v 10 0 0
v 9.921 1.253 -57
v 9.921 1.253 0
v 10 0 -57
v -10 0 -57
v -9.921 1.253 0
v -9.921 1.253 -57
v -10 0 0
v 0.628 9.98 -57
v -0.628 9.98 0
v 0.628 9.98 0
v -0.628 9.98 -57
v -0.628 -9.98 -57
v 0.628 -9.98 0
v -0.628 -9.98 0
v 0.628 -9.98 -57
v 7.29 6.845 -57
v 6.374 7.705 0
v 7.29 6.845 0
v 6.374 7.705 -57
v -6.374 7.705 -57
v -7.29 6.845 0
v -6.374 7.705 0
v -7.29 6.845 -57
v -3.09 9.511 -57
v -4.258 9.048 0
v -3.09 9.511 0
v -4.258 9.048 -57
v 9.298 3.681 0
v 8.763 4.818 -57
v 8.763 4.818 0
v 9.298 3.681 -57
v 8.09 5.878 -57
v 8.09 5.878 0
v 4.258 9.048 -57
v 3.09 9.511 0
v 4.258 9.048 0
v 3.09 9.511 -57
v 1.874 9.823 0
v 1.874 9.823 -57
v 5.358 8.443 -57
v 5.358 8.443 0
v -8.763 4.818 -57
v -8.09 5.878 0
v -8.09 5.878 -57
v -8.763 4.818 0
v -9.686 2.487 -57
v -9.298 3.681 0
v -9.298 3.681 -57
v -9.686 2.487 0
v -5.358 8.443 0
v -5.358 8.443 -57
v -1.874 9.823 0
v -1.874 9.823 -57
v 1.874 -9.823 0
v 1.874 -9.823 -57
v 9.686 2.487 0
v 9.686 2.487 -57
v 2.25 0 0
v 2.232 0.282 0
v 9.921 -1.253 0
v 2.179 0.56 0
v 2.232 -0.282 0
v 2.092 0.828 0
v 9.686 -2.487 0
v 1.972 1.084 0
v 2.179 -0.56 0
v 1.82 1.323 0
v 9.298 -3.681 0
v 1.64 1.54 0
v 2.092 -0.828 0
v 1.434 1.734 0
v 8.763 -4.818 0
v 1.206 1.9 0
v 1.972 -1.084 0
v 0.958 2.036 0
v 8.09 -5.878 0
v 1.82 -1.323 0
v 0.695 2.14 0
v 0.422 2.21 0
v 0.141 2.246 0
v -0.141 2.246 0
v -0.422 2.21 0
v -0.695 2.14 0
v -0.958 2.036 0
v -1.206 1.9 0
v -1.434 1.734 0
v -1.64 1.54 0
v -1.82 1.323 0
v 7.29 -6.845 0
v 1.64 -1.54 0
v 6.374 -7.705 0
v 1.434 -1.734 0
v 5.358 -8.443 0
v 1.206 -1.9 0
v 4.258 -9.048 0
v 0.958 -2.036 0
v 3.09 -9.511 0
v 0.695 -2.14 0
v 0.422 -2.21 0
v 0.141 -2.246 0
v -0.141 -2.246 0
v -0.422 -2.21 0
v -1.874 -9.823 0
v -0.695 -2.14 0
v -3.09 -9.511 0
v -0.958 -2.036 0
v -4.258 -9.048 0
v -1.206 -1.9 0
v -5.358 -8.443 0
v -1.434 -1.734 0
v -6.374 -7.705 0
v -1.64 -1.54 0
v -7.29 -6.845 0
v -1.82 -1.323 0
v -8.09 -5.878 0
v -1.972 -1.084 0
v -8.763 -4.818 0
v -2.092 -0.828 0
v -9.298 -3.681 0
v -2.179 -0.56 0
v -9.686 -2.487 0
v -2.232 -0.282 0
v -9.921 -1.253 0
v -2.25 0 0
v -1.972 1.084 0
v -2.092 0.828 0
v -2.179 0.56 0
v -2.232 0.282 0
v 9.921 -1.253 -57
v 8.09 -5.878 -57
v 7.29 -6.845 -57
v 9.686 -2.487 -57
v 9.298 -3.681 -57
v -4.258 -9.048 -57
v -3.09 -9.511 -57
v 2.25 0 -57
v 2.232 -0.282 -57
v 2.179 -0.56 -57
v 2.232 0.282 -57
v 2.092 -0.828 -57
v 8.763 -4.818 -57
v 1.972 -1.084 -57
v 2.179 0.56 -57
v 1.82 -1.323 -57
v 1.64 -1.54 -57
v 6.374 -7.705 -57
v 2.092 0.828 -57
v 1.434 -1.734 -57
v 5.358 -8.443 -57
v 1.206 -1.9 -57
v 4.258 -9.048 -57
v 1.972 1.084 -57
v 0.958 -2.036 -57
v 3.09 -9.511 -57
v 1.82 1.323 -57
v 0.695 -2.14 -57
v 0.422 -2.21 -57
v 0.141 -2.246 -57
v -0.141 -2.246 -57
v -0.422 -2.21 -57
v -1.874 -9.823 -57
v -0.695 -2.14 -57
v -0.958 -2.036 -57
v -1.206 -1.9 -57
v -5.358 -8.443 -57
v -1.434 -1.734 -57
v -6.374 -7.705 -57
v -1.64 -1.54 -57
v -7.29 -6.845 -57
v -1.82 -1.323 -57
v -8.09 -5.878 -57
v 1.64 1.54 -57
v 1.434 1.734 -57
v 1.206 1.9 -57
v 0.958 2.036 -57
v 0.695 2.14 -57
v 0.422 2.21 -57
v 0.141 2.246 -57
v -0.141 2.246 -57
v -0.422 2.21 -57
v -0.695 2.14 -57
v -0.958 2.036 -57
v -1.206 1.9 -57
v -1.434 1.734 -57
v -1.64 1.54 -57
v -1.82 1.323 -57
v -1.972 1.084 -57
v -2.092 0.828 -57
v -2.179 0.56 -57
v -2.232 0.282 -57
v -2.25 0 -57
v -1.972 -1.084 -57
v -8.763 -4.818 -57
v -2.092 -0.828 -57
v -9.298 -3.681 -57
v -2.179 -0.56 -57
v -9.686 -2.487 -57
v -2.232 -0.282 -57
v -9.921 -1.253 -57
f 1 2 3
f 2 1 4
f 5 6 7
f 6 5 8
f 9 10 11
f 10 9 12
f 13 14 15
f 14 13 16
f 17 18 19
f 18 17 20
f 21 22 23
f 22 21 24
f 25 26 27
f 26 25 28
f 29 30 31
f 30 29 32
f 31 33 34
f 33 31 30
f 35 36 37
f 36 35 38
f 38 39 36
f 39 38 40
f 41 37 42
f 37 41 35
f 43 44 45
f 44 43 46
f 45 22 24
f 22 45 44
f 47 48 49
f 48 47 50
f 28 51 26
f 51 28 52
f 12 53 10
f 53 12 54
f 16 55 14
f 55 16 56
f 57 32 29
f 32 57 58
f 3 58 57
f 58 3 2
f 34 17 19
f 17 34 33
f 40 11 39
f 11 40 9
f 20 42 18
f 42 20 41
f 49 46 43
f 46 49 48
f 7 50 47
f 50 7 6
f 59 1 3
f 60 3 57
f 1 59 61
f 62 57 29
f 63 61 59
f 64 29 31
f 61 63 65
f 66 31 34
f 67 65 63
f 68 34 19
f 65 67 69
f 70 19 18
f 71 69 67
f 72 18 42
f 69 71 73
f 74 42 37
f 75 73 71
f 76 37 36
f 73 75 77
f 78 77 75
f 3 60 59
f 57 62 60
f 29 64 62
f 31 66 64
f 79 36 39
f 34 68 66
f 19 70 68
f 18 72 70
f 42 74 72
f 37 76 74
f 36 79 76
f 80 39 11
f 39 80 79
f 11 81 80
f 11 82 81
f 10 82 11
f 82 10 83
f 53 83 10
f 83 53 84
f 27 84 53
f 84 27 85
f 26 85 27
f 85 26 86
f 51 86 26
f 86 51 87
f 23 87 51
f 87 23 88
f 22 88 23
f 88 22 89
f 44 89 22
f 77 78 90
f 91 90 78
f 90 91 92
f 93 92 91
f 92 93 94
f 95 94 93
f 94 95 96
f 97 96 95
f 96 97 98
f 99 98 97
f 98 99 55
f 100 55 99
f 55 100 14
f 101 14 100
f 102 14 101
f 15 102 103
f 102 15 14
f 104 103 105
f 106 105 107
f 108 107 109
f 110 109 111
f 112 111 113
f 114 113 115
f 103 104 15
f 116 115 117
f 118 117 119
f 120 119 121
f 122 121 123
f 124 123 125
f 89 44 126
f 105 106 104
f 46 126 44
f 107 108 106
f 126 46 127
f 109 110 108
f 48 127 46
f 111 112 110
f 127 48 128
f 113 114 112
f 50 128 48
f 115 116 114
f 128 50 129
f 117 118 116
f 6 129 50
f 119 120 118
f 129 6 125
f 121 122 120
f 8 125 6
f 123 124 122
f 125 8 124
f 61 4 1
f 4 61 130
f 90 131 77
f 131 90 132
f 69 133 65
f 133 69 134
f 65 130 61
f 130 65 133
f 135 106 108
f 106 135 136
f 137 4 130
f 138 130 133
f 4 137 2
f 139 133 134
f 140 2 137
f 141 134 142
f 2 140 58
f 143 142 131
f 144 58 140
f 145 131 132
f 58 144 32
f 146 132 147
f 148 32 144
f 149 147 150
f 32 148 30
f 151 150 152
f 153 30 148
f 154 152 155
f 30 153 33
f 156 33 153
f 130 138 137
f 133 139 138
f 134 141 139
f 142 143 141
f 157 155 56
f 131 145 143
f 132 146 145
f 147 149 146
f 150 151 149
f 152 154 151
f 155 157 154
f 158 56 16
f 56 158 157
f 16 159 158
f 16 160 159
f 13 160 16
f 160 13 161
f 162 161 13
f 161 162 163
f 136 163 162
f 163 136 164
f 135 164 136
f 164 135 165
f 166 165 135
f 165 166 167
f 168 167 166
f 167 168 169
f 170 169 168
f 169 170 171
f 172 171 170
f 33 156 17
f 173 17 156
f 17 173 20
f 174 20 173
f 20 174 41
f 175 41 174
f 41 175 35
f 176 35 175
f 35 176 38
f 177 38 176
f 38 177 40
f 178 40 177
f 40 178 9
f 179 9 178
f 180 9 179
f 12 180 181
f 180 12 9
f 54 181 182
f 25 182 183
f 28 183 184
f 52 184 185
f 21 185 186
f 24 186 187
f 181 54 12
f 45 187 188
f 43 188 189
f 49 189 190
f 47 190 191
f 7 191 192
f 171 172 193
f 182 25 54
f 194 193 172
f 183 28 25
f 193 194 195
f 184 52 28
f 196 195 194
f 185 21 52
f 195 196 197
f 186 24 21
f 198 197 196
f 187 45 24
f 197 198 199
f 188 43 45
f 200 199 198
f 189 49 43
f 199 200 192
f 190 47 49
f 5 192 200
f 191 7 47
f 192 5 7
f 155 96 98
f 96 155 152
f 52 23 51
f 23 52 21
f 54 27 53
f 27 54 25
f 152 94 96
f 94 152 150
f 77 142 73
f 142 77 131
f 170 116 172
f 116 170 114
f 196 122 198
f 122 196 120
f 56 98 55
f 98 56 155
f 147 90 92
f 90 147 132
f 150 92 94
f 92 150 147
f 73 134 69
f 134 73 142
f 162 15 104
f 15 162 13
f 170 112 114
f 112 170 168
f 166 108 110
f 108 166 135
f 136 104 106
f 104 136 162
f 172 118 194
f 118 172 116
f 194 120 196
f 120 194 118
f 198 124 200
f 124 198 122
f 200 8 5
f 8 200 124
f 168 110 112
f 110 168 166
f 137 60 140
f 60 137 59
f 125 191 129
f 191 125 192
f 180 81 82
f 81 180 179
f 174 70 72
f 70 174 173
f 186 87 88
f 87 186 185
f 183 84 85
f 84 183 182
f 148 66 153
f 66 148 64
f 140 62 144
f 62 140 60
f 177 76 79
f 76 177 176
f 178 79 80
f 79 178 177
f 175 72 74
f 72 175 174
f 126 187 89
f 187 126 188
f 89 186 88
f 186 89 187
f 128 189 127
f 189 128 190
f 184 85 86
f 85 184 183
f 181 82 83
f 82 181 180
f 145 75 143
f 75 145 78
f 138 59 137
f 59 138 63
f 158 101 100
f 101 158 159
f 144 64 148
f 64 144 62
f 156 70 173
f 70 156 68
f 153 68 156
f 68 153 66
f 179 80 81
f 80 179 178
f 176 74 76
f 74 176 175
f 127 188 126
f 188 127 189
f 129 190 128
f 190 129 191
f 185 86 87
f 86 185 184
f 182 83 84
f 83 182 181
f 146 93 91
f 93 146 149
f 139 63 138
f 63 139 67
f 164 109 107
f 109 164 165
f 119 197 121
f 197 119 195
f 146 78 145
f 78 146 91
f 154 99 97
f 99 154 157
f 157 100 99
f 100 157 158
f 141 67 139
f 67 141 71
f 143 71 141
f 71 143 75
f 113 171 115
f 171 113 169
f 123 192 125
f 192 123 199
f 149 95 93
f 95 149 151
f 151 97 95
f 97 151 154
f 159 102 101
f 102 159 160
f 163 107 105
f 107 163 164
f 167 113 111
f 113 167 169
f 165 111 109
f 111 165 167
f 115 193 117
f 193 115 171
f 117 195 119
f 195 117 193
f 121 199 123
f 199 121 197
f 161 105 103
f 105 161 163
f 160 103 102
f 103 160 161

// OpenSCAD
$fn = 50;


difference() {
	union() {
		translate(v = [0, 0, -57.0000000000]) {
			cylinder(h = 57, r = 10.0000000000);
		}
	}
	union() {
		#translate(v = [0, 0, -57]) {
			cylinder(h = 57, r = 2.2500000000);
		}
	}
}
